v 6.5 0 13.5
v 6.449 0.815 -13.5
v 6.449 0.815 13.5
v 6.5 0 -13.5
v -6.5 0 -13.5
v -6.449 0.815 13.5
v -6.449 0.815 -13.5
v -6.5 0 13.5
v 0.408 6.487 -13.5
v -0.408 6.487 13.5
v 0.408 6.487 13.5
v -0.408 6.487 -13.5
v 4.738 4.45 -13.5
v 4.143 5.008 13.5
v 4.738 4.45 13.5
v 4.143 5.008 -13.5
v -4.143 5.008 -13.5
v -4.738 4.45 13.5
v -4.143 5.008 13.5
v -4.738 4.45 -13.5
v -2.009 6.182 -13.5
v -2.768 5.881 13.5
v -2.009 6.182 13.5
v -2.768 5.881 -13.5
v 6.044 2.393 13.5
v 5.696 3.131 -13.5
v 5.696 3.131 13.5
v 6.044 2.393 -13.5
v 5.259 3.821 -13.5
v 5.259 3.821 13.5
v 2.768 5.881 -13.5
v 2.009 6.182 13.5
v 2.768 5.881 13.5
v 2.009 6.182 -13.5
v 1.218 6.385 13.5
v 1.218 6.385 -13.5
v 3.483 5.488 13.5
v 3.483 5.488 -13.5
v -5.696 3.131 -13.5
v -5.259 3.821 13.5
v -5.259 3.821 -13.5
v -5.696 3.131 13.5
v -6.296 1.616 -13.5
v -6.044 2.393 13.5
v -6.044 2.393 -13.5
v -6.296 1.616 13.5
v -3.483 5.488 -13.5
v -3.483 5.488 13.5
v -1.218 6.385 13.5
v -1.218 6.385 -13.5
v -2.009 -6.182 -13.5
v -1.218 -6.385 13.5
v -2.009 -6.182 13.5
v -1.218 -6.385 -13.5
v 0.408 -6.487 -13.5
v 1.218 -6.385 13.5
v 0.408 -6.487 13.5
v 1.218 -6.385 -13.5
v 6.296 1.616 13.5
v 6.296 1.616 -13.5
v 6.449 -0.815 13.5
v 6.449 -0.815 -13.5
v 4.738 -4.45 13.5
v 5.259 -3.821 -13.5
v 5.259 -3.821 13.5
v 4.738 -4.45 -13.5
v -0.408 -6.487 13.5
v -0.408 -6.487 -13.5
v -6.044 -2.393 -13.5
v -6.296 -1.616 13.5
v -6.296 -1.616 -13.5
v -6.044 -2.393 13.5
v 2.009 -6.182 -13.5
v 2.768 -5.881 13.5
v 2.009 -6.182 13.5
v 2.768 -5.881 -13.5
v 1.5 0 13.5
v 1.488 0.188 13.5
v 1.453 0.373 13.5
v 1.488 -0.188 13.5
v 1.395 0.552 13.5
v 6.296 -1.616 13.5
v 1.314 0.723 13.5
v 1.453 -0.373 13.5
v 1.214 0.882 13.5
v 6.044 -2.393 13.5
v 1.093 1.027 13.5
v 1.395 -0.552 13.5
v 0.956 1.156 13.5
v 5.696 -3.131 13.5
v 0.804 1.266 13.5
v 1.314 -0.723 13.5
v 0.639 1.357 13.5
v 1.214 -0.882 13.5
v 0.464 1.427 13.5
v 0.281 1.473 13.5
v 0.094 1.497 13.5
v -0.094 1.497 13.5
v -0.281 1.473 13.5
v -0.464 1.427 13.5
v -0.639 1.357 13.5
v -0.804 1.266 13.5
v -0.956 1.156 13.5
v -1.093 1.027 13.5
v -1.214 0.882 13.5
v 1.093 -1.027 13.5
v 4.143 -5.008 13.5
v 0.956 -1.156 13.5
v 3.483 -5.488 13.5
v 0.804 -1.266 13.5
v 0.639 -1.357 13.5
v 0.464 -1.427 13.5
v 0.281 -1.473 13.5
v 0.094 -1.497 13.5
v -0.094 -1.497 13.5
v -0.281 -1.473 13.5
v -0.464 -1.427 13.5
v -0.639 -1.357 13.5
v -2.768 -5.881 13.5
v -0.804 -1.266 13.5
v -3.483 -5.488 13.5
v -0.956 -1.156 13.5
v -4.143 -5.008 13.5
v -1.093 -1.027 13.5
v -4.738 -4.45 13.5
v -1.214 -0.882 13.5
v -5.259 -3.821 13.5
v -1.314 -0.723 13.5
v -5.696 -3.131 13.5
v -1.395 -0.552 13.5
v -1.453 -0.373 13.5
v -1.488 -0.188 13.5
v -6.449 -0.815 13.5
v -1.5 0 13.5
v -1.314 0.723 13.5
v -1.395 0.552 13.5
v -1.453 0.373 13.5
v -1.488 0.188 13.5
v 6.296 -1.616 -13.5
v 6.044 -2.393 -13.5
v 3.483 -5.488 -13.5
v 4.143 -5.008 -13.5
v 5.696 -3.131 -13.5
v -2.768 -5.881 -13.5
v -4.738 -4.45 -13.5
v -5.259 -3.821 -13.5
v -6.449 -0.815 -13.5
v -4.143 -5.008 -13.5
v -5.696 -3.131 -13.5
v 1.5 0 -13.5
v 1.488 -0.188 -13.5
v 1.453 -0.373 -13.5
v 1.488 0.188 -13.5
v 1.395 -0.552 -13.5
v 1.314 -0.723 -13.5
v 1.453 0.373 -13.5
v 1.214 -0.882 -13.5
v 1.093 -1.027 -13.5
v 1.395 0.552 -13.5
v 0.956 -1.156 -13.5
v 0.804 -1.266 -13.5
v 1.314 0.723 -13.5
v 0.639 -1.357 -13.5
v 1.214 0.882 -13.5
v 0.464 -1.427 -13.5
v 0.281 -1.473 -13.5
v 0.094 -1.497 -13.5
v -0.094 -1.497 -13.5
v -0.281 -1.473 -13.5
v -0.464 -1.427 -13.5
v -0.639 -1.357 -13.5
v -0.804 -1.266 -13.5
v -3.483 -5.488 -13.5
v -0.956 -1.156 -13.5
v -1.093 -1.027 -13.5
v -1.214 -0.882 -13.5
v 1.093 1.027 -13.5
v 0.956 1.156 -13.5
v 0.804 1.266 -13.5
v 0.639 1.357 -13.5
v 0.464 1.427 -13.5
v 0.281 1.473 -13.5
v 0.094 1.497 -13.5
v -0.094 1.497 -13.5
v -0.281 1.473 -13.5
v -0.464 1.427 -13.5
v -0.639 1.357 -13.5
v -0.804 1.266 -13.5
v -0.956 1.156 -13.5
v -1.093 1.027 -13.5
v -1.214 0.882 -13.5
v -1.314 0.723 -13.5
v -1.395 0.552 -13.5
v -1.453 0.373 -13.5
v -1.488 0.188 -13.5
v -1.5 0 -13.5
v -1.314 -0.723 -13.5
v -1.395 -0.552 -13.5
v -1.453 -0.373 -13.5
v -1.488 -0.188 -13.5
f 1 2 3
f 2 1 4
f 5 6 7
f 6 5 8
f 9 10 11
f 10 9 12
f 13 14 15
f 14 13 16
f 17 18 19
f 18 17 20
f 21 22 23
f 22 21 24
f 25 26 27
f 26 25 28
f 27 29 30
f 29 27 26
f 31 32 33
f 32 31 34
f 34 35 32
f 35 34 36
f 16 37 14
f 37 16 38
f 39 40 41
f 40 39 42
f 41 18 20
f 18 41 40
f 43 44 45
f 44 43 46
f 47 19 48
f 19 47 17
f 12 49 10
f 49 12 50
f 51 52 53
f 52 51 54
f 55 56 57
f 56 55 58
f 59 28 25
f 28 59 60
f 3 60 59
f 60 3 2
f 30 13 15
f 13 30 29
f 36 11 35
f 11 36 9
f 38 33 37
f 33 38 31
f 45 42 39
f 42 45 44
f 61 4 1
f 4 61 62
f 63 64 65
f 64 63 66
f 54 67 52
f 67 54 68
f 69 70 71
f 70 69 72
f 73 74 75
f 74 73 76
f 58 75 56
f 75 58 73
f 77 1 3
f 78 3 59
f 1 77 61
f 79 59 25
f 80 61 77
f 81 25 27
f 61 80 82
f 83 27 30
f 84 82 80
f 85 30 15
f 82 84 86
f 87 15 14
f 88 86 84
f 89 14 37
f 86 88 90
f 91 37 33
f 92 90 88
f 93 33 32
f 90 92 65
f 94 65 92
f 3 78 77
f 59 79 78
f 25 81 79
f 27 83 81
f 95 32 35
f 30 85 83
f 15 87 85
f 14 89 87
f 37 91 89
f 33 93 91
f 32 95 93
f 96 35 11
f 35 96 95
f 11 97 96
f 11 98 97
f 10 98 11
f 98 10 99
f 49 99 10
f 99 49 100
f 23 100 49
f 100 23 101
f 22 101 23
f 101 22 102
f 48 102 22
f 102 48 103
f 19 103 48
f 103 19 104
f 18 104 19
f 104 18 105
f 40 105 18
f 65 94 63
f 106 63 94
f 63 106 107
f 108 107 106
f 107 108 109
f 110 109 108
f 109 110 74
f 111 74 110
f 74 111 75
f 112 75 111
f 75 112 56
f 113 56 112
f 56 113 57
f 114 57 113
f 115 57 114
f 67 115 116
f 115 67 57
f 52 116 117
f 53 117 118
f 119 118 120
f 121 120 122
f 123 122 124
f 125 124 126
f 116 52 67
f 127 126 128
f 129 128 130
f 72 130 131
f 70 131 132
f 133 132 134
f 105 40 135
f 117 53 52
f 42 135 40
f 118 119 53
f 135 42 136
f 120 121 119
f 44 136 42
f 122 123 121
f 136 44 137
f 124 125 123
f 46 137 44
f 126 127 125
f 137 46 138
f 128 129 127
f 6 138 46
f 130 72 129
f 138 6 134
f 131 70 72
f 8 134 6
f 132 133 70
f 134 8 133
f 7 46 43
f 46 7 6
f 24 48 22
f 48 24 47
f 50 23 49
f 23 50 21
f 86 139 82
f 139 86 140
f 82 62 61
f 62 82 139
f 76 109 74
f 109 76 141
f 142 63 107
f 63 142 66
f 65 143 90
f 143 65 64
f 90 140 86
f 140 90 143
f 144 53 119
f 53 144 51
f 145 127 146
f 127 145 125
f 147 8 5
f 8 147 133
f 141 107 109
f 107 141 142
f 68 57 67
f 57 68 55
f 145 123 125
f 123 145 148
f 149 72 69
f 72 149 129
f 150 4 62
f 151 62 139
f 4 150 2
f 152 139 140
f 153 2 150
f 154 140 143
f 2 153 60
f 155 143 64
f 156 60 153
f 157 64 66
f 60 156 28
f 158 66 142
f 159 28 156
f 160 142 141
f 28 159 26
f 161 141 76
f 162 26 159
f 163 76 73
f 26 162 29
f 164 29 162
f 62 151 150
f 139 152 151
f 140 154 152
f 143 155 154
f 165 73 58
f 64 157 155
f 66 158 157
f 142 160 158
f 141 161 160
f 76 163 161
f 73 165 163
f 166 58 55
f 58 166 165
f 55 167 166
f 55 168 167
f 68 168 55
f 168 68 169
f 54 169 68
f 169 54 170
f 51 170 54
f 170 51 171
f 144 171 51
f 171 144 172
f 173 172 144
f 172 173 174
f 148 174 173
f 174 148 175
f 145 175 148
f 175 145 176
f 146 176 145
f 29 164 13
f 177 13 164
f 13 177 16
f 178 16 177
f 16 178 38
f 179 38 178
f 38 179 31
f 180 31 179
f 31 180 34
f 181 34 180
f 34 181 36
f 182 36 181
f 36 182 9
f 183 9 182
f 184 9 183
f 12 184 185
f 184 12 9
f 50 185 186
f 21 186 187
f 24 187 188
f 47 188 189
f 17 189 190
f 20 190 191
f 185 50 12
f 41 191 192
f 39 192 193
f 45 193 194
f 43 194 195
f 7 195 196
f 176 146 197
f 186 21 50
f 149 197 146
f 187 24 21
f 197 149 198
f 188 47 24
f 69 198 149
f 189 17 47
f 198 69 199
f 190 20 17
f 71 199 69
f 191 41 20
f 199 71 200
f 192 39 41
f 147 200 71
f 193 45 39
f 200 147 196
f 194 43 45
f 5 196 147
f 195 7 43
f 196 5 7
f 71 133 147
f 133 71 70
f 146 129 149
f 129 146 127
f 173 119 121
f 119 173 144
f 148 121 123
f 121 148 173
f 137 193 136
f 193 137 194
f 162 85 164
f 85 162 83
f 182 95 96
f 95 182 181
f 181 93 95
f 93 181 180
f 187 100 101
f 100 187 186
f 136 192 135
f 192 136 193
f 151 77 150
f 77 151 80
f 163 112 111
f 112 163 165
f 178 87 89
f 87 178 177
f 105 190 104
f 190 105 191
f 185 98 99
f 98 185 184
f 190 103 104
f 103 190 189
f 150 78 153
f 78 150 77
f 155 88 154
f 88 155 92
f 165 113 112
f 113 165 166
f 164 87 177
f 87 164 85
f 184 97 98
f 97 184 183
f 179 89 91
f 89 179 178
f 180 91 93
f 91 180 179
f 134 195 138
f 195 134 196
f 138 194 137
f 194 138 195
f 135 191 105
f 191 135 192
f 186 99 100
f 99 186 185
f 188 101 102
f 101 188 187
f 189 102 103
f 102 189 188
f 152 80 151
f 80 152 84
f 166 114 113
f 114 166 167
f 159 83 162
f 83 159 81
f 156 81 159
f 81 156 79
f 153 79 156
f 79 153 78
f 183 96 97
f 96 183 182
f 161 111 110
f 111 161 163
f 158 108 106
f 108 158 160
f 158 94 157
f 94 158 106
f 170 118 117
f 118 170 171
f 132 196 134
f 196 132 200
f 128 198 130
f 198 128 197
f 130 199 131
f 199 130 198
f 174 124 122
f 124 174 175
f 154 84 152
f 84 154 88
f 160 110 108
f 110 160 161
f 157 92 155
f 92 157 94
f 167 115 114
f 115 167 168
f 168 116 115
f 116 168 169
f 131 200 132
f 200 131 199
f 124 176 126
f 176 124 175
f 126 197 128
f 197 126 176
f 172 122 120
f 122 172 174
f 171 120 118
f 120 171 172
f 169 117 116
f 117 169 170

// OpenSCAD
$fn = 50;


difference() {
	union() {
		translate(v = [0, 0, -13.5000000000]) {
			cylinder(h = 27, r = 6.5000000000);
		}
	}
	union() {
		translate(v = [0, 0, -100.0000000000]) {
			cylinder(h = 200, r = 1.5000000000);
		}
	}
}
